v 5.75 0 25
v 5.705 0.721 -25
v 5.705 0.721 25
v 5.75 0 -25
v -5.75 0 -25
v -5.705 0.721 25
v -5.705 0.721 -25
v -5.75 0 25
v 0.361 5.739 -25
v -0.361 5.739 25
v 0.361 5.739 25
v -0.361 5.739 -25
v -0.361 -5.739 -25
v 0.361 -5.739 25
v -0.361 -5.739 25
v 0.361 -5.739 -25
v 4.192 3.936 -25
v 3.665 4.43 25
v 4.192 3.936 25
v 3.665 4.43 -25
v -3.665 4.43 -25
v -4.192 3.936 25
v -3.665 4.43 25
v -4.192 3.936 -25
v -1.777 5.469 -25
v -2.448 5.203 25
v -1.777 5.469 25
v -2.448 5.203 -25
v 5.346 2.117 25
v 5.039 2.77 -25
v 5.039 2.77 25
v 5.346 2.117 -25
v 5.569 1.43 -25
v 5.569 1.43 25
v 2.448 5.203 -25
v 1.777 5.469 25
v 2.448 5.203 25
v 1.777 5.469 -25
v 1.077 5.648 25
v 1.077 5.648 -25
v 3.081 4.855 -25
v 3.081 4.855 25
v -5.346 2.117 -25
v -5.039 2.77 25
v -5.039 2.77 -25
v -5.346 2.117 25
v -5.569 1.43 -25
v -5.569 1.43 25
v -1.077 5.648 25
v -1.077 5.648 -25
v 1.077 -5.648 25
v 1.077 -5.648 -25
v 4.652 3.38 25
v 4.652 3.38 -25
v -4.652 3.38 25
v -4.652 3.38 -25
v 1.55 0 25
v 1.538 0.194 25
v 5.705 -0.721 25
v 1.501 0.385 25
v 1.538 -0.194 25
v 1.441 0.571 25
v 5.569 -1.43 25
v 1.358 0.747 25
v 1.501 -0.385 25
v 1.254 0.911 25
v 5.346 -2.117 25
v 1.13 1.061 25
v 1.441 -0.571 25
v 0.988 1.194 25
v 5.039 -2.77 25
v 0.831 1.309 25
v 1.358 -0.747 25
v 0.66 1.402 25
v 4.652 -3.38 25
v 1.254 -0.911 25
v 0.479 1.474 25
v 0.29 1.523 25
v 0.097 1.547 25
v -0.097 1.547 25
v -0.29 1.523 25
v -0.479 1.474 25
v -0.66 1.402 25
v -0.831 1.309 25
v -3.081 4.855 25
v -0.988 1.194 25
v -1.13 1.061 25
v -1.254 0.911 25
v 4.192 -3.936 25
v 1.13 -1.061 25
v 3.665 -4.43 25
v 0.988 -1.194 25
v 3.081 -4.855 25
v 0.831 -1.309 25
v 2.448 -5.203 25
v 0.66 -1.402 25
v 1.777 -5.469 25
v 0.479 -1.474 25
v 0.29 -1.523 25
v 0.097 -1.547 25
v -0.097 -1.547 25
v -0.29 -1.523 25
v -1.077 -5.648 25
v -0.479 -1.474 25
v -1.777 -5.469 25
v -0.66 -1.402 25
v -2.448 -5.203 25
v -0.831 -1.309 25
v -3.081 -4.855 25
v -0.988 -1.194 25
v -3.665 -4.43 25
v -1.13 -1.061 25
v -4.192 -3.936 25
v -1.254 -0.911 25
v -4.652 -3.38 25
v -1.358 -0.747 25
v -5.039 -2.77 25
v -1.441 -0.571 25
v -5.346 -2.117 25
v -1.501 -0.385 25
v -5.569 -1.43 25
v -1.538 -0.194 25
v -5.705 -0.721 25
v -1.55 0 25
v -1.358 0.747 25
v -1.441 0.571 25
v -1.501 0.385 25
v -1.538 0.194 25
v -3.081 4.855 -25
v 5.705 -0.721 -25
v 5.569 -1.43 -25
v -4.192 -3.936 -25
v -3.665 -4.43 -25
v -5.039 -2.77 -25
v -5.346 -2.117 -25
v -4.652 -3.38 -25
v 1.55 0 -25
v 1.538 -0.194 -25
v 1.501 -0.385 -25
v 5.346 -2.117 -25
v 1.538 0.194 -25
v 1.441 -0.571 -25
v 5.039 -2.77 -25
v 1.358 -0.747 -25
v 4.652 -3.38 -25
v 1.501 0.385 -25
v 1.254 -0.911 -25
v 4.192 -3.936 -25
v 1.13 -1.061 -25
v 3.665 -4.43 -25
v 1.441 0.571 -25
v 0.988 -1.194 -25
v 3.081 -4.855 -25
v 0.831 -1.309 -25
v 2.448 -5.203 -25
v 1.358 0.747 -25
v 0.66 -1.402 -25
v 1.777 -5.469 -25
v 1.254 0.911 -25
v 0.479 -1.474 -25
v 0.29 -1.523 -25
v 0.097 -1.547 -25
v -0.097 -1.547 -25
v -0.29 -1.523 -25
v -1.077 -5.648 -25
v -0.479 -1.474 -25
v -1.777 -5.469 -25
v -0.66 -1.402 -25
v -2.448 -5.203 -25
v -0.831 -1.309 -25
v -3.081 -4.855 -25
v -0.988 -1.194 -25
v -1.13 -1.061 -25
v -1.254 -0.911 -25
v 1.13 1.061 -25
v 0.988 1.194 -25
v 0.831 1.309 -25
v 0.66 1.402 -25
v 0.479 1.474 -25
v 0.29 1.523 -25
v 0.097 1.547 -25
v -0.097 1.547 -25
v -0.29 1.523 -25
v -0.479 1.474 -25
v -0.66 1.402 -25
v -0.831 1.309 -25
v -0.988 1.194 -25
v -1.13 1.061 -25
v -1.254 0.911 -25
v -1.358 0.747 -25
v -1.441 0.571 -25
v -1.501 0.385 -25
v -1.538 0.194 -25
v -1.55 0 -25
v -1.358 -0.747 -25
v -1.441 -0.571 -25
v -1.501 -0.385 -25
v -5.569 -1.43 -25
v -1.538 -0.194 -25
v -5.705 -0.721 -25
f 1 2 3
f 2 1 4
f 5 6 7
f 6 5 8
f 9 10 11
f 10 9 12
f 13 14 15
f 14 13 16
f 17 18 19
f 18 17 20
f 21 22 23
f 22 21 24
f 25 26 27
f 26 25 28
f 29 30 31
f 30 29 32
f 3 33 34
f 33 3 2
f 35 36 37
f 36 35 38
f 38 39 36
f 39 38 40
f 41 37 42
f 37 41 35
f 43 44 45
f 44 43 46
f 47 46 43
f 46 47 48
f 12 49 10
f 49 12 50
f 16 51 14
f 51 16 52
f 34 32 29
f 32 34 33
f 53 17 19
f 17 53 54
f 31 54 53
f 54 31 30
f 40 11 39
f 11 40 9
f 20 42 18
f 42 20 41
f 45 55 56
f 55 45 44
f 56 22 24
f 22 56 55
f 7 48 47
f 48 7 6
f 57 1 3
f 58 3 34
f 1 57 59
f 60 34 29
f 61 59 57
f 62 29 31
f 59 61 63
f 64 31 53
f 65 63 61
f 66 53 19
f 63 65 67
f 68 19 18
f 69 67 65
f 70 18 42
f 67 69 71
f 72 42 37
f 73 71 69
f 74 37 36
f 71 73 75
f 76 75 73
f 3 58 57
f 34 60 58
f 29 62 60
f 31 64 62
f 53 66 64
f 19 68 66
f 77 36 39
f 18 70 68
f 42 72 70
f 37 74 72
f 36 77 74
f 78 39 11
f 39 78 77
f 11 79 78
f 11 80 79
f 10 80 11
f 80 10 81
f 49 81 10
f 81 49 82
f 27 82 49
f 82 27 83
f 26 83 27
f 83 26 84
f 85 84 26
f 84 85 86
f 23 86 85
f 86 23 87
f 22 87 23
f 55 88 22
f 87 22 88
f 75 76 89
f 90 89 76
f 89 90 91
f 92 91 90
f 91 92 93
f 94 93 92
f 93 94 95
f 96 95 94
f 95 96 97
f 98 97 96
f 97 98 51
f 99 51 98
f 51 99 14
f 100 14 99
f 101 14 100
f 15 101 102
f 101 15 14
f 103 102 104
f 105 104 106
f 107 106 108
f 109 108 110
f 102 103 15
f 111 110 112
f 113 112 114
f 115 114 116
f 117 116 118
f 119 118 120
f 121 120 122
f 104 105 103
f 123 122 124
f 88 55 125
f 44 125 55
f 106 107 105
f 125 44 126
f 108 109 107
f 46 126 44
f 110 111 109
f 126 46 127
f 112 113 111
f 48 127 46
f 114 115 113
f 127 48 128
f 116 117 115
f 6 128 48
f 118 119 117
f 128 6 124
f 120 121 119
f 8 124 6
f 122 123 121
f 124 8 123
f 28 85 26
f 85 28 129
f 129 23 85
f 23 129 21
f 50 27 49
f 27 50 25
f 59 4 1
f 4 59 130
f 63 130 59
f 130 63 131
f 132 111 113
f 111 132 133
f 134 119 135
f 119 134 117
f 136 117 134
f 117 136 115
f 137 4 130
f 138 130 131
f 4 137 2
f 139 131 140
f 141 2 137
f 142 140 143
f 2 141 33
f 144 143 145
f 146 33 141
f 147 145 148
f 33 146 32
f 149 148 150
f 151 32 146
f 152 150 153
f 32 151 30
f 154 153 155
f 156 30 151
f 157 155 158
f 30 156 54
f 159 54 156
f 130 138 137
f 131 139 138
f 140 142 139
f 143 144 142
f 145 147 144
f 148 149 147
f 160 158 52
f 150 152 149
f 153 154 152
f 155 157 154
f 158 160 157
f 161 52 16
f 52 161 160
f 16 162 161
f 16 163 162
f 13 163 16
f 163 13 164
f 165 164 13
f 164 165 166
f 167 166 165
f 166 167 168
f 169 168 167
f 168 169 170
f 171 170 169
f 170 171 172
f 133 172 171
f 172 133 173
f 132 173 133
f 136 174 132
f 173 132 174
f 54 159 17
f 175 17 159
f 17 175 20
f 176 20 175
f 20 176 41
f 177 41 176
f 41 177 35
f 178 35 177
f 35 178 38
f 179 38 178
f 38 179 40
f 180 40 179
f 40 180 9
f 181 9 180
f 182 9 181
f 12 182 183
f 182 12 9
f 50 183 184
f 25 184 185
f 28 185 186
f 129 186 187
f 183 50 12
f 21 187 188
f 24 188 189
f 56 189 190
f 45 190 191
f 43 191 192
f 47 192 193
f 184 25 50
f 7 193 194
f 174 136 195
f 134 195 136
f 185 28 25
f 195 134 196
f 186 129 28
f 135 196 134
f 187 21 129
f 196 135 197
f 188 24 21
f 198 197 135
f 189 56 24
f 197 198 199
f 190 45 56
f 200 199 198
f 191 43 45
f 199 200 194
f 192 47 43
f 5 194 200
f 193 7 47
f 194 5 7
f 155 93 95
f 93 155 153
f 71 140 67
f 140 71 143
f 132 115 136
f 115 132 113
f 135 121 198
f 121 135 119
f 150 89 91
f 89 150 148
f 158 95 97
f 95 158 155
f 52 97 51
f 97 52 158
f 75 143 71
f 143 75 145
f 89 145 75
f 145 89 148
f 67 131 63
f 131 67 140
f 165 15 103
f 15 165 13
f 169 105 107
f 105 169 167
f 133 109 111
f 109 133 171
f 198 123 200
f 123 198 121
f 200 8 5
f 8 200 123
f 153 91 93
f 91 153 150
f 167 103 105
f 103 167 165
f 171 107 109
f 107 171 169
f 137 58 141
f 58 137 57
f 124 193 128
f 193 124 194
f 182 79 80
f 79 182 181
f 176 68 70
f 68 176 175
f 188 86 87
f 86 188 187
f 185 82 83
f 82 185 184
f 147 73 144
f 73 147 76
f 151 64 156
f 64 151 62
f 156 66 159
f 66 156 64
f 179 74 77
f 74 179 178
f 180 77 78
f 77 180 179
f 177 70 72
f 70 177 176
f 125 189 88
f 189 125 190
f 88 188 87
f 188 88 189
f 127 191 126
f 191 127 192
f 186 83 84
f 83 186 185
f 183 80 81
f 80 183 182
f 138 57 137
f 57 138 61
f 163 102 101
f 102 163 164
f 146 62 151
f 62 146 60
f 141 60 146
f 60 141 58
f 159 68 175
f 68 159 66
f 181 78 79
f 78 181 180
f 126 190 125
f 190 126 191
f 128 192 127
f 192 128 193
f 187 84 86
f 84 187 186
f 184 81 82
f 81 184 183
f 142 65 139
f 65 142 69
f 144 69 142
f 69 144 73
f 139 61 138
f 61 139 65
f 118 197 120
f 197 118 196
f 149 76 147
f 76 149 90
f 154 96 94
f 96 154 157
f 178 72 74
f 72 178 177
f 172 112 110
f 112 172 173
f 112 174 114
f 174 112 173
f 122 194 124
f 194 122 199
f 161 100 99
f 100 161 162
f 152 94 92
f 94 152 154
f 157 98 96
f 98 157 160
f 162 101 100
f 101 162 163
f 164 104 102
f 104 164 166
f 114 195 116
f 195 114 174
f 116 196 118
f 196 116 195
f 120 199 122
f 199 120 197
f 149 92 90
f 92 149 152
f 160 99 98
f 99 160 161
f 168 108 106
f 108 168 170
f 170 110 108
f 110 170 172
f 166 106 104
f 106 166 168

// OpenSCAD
$fn = 50;


difference() {
	union() {
		translate(v = [0, 0, -25.0000000000]) {
			cylinder(h = 50, r = 5.7500000000);
		}
	}
	union() {
		translate(v = [0, 0, -100.0000000000]) {
			cylinder(h = 200, r = 1.5500000000);
		}
	}
}
